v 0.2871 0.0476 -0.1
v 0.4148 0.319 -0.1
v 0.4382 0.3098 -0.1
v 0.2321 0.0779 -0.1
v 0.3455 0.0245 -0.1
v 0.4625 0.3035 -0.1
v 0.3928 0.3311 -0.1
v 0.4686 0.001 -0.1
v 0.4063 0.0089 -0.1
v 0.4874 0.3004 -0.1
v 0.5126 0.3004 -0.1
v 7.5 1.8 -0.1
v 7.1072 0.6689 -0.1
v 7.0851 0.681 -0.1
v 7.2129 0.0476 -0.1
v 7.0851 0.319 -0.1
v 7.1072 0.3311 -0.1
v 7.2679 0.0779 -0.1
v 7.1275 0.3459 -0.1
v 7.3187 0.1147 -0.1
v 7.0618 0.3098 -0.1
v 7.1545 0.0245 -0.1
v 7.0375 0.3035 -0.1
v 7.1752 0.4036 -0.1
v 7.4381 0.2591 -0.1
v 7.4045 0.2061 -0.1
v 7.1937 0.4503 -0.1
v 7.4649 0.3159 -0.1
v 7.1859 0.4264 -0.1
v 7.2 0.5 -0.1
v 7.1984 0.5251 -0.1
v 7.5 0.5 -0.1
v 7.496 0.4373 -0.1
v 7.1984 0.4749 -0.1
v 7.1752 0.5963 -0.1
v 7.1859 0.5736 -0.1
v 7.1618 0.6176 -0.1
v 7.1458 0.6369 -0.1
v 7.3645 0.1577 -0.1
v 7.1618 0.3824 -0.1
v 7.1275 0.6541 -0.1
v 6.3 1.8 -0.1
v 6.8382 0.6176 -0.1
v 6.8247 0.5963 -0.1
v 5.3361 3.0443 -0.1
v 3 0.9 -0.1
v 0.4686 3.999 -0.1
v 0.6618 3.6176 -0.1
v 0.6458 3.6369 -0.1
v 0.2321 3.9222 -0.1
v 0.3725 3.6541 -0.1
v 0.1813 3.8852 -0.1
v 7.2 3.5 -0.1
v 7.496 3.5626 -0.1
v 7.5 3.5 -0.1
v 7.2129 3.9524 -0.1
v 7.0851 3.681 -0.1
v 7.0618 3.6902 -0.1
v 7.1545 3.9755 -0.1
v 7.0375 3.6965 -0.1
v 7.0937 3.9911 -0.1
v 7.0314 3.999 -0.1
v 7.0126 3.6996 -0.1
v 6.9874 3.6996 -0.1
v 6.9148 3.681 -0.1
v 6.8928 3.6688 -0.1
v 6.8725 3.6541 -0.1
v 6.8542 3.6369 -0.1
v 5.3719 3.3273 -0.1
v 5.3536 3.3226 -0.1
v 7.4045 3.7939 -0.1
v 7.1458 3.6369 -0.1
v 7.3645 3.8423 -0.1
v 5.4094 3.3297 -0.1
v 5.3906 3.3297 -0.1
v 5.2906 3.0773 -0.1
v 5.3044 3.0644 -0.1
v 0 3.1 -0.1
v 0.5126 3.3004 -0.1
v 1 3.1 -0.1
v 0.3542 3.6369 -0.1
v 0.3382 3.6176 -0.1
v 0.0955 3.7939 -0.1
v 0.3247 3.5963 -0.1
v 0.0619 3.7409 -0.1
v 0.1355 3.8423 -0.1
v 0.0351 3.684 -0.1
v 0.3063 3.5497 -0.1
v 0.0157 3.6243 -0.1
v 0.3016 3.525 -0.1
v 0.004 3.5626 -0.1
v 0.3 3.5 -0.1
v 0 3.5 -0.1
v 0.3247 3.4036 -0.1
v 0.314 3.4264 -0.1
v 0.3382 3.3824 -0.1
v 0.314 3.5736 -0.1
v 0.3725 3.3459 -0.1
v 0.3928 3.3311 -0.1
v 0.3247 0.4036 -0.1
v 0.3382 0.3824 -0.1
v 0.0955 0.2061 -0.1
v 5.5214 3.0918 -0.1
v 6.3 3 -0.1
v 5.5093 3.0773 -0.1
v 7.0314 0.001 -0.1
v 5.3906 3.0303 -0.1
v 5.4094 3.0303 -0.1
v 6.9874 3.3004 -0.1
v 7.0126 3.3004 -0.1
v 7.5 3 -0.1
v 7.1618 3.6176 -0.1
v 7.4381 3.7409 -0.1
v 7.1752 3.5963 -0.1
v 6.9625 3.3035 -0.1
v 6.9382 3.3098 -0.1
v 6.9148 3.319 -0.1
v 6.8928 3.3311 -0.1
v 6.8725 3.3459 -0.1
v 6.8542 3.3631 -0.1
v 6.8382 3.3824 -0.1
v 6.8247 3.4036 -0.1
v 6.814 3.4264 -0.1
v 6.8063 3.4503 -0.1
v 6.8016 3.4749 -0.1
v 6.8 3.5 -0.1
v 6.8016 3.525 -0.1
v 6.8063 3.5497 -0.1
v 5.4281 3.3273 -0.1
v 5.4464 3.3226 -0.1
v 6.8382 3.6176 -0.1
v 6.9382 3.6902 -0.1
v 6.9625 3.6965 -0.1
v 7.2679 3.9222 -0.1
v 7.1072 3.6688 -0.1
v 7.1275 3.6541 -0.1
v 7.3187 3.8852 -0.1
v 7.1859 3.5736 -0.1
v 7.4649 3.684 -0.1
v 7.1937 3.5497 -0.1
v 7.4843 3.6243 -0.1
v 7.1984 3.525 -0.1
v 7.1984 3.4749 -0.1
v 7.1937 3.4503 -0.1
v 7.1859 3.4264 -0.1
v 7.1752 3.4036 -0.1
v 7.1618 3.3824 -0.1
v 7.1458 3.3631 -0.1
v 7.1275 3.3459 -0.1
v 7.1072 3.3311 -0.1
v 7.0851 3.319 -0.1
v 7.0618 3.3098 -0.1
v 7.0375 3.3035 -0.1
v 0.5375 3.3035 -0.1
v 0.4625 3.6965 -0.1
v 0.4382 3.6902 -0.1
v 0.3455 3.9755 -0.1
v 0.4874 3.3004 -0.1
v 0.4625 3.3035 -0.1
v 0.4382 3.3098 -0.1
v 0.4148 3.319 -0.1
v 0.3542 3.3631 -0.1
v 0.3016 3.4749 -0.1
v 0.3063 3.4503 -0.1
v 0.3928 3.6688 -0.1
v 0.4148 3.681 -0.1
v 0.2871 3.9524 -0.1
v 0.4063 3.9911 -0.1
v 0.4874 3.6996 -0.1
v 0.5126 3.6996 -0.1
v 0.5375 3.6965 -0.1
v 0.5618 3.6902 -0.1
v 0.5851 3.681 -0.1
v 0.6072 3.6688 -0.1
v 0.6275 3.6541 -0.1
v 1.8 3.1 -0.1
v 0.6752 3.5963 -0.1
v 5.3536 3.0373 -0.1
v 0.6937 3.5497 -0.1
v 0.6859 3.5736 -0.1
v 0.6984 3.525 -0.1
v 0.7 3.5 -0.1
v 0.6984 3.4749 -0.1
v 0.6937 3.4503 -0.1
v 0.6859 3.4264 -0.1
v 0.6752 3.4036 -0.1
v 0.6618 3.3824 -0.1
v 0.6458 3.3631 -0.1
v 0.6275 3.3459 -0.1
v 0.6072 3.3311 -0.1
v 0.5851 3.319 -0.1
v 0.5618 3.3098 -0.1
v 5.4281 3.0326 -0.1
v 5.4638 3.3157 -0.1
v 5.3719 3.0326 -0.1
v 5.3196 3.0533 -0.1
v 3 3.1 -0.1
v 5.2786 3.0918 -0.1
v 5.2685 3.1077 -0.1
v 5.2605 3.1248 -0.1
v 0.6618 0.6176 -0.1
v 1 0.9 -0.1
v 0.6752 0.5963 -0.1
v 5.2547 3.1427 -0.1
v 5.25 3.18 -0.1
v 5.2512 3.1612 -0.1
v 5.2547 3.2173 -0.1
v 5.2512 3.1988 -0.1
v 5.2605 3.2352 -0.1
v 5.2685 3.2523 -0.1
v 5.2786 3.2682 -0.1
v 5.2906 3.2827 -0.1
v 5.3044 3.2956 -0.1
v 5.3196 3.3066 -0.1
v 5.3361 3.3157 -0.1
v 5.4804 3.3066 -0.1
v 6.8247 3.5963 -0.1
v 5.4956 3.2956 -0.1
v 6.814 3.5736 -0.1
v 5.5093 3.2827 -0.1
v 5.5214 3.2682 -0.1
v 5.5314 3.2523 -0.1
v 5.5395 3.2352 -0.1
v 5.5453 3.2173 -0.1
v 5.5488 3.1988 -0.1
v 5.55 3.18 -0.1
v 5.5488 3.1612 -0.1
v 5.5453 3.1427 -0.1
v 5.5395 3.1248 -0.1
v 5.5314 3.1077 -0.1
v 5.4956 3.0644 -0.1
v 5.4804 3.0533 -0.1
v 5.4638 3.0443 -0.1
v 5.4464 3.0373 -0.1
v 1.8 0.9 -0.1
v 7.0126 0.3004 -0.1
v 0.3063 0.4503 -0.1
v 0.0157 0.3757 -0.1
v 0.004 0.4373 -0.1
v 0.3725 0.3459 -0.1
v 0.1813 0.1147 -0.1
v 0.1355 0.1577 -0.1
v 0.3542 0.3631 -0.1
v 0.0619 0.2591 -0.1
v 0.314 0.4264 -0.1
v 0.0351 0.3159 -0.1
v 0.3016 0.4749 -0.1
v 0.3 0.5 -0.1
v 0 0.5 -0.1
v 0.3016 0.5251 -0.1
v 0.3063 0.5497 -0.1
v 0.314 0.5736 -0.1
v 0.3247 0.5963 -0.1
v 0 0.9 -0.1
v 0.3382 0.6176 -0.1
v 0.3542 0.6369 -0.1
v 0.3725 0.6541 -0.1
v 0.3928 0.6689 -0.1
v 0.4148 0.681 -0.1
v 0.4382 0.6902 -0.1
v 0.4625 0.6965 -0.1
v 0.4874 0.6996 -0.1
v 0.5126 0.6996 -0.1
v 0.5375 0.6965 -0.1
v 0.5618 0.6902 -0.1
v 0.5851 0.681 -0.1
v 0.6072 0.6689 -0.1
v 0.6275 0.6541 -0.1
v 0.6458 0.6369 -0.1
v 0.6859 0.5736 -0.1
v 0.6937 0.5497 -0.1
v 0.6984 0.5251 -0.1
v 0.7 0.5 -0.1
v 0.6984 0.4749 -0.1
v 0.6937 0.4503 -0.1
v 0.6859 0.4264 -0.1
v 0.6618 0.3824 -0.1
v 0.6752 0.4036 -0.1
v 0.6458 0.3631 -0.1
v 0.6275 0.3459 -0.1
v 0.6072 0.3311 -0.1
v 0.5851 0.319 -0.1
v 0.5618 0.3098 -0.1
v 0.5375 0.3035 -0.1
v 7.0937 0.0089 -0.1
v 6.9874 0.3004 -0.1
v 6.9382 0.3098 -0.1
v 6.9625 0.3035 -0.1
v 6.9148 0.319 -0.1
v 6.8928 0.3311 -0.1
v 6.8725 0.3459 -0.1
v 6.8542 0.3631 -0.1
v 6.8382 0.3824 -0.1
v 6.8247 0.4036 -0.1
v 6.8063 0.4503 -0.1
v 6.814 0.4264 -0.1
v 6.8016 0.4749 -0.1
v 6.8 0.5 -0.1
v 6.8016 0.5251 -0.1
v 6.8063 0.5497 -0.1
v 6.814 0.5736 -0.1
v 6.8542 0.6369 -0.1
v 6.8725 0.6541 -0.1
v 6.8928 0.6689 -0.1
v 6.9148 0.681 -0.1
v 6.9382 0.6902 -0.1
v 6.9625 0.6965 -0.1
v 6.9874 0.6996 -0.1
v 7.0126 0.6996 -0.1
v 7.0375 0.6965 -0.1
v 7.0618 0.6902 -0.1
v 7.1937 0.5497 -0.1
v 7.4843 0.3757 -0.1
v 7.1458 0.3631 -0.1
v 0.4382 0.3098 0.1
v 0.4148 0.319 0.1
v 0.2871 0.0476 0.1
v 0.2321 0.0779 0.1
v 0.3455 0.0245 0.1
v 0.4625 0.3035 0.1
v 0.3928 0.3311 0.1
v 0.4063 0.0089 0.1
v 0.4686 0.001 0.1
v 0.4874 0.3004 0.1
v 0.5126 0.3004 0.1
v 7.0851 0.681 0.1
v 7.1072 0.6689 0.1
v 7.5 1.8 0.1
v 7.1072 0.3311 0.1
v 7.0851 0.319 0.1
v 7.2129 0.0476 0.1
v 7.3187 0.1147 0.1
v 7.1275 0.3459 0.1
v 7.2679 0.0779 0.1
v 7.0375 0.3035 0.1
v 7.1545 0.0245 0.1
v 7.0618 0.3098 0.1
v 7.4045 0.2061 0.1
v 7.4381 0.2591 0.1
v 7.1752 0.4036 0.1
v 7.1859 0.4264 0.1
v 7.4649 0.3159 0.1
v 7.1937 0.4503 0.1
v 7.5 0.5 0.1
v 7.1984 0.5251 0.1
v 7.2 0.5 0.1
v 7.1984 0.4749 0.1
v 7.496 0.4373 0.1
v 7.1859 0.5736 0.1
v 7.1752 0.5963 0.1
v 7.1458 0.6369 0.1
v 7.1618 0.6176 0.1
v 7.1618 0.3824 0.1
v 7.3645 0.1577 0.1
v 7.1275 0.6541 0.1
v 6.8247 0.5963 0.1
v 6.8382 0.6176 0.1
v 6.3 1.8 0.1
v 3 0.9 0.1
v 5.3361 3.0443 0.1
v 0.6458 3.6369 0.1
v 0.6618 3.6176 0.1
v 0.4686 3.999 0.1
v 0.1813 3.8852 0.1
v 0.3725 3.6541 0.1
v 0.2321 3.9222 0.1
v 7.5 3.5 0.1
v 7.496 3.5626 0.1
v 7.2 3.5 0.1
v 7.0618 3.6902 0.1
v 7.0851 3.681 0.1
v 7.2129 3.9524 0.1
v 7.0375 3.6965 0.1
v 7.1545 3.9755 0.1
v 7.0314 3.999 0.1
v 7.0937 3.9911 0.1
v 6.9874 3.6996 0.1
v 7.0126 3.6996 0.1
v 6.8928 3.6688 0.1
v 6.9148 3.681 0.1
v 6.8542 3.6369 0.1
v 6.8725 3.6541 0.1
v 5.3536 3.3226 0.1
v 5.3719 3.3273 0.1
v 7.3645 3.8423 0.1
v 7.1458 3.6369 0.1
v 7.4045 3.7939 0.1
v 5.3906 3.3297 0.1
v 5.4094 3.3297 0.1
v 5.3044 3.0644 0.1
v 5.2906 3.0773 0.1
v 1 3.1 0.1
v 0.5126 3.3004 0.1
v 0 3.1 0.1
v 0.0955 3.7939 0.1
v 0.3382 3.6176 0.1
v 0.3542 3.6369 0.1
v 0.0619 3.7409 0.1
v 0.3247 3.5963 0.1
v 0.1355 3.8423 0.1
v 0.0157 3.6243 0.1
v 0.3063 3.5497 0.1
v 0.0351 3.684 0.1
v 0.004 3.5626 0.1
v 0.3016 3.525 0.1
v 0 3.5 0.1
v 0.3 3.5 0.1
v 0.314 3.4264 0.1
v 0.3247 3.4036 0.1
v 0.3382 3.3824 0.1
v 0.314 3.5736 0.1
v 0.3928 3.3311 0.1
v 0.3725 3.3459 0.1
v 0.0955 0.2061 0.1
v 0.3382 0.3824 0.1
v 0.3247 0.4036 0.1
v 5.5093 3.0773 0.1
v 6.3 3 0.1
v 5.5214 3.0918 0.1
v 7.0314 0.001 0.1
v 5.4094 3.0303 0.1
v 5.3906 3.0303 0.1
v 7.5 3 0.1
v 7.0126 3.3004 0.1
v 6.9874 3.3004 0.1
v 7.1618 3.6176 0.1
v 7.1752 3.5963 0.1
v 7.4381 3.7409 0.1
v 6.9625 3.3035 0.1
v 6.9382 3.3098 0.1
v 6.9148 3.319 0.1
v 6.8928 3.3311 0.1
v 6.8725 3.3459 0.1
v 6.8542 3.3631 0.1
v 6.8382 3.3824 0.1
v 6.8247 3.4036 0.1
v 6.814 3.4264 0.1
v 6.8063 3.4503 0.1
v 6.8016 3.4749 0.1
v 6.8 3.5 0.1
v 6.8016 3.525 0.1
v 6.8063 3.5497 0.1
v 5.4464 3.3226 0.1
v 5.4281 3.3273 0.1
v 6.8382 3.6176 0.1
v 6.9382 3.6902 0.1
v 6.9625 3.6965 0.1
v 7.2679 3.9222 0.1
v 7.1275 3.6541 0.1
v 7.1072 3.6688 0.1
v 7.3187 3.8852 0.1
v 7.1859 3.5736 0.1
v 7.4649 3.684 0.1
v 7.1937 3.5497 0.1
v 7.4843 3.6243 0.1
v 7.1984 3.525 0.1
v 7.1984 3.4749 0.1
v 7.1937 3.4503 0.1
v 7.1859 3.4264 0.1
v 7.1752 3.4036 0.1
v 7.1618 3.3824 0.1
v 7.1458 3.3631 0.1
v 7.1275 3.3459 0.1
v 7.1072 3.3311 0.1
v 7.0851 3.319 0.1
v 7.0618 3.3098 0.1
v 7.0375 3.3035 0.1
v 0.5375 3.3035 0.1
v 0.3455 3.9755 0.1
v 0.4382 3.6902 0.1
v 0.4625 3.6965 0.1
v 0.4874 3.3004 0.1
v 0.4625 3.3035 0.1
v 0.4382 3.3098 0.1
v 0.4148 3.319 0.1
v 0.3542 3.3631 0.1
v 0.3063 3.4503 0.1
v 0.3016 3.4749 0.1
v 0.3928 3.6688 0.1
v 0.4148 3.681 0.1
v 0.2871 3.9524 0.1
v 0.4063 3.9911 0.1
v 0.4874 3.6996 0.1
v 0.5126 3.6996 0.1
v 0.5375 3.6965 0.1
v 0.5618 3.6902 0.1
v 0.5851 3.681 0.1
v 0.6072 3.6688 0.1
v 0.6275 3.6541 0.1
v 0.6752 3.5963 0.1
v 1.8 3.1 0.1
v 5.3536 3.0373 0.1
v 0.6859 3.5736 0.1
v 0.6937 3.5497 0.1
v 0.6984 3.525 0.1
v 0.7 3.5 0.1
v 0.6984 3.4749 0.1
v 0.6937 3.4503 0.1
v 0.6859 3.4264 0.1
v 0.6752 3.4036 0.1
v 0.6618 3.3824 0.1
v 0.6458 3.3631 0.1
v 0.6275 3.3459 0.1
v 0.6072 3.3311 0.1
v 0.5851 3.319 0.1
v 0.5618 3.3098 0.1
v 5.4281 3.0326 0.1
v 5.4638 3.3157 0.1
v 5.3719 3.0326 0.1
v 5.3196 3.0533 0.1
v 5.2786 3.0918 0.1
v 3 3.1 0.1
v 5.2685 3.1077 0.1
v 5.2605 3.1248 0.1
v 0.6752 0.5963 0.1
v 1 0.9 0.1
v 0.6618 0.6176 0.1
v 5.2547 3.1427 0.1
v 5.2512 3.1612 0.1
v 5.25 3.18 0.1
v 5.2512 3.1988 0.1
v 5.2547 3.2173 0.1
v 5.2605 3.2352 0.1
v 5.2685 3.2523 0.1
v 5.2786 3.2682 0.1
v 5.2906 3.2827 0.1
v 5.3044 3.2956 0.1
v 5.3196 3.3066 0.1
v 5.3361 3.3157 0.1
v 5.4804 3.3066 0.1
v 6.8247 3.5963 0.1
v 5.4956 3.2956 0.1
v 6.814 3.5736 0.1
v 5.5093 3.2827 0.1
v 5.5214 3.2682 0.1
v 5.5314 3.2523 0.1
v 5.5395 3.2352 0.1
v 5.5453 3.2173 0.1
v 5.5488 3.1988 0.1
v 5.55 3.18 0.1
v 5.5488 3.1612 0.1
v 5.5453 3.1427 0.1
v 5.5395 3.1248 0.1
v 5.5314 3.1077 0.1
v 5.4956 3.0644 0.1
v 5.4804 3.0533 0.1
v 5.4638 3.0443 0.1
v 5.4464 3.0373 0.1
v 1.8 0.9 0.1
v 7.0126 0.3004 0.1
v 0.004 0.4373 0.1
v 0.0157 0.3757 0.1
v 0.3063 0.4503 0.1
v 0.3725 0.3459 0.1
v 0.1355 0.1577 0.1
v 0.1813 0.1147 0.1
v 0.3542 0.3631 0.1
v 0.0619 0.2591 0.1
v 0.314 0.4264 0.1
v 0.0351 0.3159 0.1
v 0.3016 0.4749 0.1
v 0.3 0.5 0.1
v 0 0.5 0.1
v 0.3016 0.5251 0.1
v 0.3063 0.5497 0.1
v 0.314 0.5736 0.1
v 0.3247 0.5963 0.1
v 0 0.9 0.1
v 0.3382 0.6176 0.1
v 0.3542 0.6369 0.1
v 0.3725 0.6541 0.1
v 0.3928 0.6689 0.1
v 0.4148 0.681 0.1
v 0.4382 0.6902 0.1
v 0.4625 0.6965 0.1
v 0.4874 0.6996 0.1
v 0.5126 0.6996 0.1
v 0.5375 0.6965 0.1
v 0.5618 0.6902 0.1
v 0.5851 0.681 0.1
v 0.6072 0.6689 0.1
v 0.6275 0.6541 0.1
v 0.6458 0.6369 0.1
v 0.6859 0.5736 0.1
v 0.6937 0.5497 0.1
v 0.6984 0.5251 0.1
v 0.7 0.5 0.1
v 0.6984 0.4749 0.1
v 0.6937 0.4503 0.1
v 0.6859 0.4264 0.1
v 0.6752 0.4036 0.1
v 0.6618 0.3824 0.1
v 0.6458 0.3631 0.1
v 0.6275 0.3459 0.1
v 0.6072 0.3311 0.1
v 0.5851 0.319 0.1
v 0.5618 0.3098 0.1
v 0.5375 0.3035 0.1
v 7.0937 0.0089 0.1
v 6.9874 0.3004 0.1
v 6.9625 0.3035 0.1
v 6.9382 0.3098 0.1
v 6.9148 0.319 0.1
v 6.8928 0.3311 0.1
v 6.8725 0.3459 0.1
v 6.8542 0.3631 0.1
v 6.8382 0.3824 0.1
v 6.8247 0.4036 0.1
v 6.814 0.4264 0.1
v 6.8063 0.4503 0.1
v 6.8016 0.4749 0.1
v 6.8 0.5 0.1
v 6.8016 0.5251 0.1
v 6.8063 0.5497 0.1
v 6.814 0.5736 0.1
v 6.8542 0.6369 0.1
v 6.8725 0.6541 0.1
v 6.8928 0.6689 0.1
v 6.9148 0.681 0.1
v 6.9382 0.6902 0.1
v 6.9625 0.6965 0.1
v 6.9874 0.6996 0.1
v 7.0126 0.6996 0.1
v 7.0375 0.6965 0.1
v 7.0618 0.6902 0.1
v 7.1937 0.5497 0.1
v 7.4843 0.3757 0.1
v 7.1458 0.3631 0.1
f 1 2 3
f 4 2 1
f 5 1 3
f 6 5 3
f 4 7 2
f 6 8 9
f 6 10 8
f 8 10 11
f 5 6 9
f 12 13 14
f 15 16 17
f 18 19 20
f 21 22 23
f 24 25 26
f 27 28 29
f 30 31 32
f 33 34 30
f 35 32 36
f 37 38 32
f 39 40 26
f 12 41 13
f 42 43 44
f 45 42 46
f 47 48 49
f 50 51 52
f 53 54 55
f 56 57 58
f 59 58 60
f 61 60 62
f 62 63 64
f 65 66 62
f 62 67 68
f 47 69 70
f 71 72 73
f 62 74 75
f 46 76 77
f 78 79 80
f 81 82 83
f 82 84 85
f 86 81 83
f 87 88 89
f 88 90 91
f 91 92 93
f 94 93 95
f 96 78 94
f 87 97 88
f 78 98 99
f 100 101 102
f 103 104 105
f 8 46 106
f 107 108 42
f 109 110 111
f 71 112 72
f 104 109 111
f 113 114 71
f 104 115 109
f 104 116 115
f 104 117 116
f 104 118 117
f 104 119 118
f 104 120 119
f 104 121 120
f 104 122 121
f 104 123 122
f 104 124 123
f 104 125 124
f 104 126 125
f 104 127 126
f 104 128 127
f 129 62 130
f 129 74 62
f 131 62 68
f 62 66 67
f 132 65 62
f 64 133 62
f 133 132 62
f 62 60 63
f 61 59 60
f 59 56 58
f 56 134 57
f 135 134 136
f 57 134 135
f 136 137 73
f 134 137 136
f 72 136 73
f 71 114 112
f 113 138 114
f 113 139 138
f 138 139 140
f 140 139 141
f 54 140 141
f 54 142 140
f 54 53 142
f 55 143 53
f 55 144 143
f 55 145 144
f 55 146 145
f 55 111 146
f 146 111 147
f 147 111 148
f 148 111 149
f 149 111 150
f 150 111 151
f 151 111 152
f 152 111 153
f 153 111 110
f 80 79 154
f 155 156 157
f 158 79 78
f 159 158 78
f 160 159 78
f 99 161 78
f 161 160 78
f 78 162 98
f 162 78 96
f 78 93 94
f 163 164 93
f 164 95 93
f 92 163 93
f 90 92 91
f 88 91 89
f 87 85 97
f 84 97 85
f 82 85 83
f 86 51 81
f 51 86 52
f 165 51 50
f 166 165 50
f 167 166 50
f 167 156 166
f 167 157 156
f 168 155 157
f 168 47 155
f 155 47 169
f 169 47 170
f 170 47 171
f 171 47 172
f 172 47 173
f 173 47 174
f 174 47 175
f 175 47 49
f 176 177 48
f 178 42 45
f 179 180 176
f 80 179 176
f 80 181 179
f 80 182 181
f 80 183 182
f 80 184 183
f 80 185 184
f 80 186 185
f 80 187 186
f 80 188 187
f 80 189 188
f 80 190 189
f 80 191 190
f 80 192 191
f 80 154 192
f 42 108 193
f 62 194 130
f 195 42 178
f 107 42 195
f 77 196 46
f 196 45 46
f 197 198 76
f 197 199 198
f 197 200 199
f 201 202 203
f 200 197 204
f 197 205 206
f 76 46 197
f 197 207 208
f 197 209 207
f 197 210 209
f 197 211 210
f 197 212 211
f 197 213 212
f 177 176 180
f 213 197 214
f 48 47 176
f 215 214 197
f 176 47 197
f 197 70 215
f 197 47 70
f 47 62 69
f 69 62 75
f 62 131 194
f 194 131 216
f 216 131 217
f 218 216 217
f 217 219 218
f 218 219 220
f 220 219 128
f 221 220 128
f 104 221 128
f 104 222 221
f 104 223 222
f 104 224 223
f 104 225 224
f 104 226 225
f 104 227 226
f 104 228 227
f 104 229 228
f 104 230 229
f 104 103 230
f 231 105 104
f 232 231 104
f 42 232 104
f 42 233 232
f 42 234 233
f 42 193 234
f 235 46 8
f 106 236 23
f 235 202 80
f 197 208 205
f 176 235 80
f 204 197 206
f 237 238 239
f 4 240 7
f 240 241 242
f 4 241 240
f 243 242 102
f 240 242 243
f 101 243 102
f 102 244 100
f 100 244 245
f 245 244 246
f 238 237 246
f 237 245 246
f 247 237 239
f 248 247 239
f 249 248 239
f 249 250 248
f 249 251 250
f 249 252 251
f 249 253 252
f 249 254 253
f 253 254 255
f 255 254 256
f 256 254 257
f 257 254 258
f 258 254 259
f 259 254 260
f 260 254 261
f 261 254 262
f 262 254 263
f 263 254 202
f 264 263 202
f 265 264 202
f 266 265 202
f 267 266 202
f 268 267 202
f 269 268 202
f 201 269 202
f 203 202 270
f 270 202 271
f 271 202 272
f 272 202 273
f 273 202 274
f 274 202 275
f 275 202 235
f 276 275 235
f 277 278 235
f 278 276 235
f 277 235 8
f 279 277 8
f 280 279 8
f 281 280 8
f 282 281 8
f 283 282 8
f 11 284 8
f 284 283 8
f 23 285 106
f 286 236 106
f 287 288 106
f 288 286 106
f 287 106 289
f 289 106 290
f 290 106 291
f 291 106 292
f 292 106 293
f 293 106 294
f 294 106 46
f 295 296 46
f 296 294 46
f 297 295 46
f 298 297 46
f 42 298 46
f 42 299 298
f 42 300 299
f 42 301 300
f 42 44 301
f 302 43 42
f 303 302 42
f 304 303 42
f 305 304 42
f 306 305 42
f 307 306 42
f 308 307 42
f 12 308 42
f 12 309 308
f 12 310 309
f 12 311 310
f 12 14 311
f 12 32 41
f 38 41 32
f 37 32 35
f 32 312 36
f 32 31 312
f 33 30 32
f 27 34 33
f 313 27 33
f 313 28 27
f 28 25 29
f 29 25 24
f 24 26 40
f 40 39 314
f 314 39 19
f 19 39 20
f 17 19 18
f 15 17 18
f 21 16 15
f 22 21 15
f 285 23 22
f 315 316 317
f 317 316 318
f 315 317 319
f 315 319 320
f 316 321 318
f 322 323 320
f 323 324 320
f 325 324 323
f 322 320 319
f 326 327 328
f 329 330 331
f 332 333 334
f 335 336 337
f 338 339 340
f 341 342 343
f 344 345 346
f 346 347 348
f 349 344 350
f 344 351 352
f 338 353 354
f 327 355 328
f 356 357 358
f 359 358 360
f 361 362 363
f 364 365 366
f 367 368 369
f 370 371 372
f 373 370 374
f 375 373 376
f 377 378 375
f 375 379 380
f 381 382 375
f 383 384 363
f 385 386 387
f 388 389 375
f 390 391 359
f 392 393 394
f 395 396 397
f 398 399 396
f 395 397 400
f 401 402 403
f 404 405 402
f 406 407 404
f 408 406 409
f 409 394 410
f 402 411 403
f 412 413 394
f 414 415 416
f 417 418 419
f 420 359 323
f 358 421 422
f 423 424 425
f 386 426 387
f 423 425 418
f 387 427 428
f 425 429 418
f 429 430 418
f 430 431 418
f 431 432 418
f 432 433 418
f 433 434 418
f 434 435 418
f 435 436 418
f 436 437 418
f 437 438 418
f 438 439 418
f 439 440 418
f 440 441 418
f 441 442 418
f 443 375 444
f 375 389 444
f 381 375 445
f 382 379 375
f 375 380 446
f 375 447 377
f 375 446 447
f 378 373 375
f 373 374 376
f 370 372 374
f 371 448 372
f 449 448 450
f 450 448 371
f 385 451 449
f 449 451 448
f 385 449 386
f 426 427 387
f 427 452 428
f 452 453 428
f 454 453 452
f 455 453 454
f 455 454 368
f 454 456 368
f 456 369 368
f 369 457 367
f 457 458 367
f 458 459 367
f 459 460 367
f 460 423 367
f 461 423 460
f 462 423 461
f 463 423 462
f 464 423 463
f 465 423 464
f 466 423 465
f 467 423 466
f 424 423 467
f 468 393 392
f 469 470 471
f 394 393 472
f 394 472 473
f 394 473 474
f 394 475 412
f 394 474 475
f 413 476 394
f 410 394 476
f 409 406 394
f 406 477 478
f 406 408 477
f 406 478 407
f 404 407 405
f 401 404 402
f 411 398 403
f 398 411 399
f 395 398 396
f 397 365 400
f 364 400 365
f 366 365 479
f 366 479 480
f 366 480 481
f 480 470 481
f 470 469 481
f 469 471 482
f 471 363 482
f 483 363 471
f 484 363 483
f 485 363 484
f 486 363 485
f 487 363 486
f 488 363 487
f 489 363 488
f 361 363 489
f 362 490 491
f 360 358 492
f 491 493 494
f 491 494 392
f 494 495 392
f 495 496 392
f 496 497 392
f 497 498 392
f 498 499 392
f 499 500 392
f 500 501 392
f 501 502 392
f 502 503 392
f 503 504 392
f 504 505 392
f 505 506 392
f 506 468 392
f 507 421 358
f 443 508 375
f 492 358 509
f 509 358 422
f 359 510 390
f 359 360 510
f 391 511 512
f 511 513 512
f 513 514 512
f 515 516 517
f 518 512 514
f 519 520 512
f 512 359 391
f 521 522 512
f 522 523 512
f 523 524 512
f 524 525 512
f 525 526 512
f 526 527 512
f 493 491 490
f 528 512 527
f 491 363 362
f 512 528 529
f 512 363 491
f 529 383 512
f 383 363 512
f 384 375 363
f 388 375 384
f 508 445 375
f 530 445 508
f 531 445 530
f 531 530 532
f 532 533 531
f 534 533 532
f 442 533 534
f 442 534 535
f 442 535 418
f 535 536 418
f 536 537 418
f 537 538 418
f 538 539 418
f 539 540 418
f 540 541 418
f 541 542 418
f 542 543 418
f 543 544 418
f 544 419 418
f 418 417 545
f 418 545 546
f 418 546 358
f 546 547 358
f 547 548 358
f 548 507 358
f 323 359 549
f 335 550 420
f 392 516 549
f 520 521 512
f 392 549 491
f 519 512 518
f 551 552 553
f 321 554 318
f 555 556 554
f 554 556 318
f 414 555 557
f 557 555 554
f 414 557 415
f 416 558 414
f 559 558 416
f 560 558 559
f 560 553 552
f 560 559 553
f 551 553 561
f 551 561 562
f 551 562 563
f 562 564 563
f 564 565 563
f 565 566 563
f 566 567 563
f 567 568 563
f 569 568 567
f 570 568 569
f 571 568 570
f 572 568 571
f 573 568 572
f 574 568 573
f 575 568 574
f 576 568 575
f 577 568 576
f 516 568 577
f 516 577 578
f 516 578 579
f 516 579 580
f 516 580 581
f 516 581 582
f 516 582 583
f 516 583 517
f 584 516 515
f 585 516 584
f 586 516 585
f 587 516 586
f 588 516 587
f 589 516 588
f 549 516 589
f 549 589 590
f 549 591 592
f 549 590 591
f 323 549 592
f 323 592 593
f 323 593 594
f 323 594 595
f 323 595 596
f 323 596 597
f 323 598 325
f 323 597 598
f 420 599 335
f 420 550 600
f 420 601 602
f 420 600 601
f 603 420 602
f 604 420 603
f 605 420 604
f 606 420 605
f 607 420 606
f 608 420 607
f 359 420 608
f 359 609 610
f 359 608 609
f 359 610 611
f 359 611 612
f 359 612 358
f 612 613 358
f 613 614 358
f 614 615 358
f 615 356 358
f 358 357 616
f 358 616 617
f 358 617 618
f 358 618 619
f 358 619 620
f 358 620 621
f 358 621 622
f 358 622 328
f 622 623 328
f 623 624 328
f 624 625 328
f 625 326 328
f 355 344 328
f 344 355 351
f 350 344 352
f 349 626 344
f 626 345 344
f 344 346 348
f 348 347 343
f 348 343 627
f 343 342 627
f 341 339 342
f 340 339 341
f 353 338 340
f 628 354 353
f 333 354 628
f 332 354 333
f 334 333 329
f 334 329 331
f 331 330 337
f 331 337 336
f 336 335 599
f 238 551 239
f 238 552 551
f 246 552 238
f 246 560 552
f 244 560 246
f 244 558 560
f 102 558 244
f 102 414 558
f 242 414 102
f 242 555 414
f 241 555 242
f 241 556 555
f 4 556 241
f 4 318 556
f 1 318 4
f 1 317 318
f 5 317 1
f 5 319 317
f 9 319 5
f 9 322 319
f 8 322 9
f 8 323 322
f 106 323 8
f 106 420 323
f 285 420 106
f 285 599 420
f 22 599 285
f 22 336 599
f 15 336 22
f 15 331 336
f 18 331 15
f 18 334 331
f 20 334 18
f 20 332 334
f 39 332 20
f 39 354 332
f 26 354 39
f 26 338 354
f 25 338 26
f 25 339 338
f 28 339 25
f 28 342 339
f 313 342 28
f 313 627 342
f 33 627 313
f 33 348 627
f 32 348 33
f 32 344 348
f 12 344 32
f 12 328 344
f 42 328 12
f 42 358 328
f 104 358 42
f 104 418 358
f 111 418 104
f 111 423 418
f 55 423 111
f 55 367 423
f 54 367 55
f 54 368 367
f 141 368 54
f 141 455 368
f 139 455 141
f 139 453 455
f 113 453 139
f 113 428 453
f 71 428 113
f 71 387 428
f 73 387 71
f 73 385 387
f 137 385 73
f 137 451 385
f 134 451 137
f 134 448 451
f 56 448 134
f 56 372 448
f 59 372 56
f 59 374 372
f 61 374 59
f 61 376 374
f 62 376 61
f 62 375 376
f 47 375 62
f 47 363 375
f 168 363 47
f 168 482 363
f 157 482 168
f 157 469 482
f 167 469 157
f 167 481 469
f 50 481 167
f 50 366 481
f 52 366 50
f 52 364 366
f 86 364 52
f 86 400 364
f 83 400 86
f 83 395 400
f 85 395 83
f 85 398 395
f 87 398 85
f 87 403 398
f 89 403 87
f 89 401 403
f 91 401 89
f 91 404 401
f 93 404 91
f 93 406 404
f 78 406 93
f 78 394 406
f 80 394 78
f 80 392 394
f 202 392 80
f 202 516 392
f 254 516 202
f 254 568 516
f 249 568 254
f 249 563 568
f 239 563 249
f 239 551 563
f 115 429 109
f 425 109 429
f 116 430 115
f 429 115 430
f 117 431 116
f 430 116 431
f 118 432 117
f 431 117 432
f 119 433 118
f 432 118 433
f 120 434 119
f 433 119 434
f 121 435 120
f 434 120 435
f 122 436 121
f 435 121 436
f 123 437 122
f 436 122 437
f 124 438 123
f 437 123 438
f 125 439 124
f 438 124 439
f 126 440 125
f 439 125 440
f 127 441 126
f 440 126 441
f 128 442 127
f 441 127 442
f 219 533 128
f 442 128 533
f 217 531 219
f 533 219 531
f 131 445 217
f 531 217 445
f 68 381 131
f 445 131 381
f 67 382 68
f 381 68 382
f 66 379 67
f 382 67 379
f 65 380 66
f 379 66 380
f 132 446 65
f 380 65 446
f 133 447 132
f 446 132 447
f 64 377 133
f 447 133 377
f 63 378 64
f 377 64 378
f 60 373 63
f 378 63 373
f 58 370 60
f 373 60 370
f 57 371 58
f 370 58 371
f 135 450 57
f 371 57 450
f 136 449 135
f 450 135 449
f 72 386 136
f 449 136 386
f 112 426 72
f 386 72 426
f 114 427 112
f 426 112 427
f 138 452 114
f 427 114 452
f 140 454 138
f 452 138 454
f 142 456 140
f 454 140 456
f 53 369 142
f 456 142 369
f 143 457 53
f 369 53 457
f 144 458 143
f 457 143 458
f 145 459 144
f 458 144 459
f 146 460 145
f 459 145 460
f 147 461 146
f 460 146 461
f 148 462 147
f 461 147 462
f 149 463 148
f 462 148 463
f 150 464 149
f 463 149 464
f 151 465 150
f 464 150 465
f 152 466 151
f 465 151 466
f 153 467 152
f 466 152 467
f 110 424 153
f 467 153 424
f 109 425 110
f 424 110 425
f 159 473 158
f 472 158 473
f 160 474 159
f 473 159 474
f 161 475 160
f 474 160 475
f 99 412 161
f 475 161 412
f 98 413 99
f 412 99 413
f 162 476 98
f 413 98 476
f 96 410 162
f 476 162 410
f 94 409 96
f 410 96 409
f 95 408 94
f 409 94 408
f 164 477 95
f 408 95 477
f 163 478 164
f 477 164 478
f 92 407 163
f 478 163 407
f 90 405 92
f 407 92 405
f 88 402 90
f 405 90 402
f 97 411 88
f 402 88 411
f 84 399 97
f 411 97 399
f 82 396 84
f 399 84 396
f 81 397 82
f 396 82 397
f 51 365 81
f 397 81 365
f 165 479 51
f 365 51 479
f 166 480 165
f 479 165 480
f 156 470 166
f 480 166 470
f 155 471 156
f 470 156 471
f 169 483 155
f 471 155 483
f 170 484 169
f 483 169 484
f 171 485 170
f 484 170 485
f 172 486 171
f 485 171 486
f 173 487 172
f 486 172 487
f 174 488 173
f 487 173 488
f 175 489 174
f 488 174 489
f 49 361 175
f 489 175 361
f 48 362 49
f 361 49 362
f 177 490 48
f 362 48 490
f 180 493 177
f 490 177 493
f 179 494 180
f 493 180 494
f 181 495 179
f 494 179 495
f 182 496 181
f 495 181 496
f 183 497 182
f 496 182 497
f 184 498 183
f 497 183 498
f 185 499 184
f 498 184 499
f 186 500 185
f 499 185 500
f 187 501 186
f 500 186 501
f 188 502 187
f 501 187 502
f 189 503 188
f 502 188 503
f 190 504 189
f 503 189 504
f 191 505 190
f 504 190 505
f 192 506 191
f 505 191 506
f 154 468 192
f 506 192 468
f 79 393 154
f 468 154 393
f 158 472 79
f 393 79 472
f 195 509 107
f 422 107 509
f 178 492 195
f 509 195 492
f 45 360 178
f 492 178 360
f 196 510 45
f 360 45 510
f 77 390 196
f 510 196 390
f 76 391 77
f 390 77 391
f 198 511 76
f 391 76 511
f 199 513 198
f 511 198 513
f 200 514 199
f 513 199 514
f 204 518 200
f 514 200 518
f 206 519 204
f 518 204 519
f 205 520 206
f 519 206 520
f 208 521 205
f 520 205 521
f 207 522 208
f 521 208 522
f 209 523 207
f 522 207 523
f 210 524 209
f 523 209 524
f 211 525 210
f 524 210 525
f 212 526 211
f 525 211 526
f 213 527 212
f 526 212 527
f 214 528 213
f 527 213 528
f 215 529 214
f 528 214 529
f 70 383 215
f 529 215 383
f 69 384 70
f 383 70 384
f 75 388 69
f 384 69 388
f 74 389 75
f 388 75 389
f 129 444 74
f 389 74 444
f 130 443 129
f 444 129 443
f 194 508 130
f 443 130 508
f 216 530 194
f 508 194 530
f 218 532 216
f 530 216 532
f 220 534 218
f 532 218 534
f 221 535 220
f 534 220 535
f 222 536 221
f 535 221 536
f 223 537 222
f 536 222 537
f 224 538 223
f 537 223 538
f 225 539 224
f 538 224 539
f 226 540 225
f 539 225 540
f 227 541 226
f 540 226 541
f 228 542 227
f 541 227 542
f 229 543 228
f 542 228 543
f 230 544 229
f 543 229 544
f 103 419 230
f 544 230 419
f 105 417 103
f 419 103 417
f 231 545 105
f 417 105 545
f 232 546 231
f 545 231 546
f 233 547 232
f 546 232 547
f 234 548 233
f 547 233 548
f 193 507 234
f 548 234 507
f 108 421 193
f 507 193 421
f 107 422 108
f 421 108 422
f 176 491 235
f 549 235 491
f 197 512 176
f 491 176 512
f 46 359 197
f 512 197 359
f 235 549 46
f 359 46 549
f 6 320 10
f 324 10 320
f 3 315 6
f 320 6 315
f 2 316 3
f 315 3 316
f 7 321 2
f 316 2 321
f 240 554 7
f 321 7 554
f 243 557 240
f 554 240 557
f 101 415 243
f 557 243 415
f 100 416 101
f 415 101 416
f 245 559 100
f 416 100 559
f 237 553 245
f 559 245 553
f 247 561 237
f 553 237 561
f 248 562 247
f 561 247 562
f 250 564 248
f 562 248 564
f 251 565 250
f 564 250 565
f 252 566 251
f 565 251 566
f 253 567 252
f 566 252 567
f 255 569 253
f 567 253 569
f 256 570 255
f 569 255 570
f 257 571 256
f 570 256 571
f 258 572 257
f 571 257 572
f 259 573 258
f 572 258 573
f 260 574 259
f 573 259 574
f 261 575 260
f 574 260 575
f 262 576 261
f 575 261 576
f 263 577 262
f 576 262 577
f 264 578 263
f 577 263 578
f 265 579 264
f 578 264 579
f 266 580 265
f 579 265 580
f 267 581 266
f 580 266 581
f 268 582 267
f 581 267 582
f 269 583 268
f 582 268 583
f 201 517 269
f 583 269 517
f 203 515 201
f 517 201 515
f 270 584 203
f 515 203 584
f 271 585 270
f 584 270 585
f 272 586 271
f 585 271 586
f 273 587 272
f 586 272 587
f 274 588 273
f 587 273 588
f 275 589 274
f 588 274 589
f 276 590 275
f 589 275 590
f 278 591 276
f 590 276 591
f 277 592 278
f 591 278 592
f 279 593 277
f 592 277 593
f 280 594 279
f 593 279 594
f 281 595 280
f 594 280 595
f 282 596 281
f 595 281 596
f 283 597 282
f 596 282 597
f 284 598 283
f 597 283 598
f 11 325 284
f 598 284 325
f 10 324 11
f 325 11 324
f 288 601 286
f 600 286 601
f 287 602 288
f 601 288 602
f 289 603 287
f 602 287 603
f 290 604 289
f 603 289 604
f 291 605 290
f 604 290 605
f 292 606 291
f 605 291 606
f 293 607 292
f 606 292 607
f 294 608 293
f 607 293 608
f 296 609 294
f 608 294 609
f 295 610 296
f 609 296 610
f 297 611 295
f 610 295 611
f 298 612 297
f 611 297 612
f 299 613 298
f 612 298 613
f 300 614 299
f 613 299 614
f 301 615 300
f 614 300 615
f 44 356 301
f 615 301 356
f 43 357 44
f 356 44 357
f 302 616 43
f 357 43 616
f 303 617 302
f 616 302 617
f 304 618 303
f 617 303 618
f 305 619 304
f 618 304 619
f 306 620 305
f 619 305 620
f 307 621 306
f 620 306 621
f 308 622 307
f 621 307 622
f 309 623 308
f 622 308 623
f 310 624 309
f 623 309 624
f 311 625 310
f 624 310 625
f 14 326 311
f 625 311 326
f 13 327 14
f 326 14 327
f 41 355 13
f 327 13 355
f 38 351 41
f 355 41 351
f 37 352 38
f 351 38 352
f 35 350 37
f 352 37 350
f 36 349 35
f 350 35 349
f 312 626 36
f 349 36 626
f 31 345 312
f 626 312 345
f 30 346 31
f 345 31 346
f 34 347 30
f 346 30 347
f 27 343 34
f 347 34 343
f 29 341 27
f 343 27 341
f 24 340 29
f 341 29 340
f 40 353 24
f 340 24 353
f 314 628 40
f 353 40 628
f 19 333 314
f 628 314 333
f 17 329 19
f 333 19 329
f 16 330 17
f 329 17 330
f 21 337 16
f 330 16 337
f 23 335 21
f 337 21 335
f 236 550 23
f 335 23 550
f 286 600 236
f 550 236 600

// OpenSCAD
module roundedSquare( width, length, radiusCorner ) {
	translate( [ radiusCorner, radiusCorner, 0 ] )
		minkowski() {
			square( [width - 2 * radiusCorner, length - 2 * radiusCorner], false);
			circle(radiusCorner, $fn=50);
		}
}

//Make it 3D
linear_extrude(height = 0.2, center = true, convexity = 10, twist = 0)
difference()
{
    roundedSquare(7.5, 4, 0.5);
    
    // Mounting holes
    translate([0.5,0.5])
        circle(0.2, true, $fn=50);
    translate([7,0.5])
        circle(0.2, true, $fn=50);
    translate([7,3.5])
        circle(0.2, true, $fn=50);
    translate([0.5,3.5])
        circle(0.2, true, $fn=50);
    
    //DC Jack
    translate([6.9,2.4])
        square([1.2, 1.2], true);
    
    //LED connector
    translate([0.5,2])
        square([1, 2.2], true);
    
    //Sensors
    translate([2.4,2])
        square([1.2, 2.2], true);
        
    //Button
    translate([5.4,3.18])
        circle(0.15, true, $fn=50);
}
